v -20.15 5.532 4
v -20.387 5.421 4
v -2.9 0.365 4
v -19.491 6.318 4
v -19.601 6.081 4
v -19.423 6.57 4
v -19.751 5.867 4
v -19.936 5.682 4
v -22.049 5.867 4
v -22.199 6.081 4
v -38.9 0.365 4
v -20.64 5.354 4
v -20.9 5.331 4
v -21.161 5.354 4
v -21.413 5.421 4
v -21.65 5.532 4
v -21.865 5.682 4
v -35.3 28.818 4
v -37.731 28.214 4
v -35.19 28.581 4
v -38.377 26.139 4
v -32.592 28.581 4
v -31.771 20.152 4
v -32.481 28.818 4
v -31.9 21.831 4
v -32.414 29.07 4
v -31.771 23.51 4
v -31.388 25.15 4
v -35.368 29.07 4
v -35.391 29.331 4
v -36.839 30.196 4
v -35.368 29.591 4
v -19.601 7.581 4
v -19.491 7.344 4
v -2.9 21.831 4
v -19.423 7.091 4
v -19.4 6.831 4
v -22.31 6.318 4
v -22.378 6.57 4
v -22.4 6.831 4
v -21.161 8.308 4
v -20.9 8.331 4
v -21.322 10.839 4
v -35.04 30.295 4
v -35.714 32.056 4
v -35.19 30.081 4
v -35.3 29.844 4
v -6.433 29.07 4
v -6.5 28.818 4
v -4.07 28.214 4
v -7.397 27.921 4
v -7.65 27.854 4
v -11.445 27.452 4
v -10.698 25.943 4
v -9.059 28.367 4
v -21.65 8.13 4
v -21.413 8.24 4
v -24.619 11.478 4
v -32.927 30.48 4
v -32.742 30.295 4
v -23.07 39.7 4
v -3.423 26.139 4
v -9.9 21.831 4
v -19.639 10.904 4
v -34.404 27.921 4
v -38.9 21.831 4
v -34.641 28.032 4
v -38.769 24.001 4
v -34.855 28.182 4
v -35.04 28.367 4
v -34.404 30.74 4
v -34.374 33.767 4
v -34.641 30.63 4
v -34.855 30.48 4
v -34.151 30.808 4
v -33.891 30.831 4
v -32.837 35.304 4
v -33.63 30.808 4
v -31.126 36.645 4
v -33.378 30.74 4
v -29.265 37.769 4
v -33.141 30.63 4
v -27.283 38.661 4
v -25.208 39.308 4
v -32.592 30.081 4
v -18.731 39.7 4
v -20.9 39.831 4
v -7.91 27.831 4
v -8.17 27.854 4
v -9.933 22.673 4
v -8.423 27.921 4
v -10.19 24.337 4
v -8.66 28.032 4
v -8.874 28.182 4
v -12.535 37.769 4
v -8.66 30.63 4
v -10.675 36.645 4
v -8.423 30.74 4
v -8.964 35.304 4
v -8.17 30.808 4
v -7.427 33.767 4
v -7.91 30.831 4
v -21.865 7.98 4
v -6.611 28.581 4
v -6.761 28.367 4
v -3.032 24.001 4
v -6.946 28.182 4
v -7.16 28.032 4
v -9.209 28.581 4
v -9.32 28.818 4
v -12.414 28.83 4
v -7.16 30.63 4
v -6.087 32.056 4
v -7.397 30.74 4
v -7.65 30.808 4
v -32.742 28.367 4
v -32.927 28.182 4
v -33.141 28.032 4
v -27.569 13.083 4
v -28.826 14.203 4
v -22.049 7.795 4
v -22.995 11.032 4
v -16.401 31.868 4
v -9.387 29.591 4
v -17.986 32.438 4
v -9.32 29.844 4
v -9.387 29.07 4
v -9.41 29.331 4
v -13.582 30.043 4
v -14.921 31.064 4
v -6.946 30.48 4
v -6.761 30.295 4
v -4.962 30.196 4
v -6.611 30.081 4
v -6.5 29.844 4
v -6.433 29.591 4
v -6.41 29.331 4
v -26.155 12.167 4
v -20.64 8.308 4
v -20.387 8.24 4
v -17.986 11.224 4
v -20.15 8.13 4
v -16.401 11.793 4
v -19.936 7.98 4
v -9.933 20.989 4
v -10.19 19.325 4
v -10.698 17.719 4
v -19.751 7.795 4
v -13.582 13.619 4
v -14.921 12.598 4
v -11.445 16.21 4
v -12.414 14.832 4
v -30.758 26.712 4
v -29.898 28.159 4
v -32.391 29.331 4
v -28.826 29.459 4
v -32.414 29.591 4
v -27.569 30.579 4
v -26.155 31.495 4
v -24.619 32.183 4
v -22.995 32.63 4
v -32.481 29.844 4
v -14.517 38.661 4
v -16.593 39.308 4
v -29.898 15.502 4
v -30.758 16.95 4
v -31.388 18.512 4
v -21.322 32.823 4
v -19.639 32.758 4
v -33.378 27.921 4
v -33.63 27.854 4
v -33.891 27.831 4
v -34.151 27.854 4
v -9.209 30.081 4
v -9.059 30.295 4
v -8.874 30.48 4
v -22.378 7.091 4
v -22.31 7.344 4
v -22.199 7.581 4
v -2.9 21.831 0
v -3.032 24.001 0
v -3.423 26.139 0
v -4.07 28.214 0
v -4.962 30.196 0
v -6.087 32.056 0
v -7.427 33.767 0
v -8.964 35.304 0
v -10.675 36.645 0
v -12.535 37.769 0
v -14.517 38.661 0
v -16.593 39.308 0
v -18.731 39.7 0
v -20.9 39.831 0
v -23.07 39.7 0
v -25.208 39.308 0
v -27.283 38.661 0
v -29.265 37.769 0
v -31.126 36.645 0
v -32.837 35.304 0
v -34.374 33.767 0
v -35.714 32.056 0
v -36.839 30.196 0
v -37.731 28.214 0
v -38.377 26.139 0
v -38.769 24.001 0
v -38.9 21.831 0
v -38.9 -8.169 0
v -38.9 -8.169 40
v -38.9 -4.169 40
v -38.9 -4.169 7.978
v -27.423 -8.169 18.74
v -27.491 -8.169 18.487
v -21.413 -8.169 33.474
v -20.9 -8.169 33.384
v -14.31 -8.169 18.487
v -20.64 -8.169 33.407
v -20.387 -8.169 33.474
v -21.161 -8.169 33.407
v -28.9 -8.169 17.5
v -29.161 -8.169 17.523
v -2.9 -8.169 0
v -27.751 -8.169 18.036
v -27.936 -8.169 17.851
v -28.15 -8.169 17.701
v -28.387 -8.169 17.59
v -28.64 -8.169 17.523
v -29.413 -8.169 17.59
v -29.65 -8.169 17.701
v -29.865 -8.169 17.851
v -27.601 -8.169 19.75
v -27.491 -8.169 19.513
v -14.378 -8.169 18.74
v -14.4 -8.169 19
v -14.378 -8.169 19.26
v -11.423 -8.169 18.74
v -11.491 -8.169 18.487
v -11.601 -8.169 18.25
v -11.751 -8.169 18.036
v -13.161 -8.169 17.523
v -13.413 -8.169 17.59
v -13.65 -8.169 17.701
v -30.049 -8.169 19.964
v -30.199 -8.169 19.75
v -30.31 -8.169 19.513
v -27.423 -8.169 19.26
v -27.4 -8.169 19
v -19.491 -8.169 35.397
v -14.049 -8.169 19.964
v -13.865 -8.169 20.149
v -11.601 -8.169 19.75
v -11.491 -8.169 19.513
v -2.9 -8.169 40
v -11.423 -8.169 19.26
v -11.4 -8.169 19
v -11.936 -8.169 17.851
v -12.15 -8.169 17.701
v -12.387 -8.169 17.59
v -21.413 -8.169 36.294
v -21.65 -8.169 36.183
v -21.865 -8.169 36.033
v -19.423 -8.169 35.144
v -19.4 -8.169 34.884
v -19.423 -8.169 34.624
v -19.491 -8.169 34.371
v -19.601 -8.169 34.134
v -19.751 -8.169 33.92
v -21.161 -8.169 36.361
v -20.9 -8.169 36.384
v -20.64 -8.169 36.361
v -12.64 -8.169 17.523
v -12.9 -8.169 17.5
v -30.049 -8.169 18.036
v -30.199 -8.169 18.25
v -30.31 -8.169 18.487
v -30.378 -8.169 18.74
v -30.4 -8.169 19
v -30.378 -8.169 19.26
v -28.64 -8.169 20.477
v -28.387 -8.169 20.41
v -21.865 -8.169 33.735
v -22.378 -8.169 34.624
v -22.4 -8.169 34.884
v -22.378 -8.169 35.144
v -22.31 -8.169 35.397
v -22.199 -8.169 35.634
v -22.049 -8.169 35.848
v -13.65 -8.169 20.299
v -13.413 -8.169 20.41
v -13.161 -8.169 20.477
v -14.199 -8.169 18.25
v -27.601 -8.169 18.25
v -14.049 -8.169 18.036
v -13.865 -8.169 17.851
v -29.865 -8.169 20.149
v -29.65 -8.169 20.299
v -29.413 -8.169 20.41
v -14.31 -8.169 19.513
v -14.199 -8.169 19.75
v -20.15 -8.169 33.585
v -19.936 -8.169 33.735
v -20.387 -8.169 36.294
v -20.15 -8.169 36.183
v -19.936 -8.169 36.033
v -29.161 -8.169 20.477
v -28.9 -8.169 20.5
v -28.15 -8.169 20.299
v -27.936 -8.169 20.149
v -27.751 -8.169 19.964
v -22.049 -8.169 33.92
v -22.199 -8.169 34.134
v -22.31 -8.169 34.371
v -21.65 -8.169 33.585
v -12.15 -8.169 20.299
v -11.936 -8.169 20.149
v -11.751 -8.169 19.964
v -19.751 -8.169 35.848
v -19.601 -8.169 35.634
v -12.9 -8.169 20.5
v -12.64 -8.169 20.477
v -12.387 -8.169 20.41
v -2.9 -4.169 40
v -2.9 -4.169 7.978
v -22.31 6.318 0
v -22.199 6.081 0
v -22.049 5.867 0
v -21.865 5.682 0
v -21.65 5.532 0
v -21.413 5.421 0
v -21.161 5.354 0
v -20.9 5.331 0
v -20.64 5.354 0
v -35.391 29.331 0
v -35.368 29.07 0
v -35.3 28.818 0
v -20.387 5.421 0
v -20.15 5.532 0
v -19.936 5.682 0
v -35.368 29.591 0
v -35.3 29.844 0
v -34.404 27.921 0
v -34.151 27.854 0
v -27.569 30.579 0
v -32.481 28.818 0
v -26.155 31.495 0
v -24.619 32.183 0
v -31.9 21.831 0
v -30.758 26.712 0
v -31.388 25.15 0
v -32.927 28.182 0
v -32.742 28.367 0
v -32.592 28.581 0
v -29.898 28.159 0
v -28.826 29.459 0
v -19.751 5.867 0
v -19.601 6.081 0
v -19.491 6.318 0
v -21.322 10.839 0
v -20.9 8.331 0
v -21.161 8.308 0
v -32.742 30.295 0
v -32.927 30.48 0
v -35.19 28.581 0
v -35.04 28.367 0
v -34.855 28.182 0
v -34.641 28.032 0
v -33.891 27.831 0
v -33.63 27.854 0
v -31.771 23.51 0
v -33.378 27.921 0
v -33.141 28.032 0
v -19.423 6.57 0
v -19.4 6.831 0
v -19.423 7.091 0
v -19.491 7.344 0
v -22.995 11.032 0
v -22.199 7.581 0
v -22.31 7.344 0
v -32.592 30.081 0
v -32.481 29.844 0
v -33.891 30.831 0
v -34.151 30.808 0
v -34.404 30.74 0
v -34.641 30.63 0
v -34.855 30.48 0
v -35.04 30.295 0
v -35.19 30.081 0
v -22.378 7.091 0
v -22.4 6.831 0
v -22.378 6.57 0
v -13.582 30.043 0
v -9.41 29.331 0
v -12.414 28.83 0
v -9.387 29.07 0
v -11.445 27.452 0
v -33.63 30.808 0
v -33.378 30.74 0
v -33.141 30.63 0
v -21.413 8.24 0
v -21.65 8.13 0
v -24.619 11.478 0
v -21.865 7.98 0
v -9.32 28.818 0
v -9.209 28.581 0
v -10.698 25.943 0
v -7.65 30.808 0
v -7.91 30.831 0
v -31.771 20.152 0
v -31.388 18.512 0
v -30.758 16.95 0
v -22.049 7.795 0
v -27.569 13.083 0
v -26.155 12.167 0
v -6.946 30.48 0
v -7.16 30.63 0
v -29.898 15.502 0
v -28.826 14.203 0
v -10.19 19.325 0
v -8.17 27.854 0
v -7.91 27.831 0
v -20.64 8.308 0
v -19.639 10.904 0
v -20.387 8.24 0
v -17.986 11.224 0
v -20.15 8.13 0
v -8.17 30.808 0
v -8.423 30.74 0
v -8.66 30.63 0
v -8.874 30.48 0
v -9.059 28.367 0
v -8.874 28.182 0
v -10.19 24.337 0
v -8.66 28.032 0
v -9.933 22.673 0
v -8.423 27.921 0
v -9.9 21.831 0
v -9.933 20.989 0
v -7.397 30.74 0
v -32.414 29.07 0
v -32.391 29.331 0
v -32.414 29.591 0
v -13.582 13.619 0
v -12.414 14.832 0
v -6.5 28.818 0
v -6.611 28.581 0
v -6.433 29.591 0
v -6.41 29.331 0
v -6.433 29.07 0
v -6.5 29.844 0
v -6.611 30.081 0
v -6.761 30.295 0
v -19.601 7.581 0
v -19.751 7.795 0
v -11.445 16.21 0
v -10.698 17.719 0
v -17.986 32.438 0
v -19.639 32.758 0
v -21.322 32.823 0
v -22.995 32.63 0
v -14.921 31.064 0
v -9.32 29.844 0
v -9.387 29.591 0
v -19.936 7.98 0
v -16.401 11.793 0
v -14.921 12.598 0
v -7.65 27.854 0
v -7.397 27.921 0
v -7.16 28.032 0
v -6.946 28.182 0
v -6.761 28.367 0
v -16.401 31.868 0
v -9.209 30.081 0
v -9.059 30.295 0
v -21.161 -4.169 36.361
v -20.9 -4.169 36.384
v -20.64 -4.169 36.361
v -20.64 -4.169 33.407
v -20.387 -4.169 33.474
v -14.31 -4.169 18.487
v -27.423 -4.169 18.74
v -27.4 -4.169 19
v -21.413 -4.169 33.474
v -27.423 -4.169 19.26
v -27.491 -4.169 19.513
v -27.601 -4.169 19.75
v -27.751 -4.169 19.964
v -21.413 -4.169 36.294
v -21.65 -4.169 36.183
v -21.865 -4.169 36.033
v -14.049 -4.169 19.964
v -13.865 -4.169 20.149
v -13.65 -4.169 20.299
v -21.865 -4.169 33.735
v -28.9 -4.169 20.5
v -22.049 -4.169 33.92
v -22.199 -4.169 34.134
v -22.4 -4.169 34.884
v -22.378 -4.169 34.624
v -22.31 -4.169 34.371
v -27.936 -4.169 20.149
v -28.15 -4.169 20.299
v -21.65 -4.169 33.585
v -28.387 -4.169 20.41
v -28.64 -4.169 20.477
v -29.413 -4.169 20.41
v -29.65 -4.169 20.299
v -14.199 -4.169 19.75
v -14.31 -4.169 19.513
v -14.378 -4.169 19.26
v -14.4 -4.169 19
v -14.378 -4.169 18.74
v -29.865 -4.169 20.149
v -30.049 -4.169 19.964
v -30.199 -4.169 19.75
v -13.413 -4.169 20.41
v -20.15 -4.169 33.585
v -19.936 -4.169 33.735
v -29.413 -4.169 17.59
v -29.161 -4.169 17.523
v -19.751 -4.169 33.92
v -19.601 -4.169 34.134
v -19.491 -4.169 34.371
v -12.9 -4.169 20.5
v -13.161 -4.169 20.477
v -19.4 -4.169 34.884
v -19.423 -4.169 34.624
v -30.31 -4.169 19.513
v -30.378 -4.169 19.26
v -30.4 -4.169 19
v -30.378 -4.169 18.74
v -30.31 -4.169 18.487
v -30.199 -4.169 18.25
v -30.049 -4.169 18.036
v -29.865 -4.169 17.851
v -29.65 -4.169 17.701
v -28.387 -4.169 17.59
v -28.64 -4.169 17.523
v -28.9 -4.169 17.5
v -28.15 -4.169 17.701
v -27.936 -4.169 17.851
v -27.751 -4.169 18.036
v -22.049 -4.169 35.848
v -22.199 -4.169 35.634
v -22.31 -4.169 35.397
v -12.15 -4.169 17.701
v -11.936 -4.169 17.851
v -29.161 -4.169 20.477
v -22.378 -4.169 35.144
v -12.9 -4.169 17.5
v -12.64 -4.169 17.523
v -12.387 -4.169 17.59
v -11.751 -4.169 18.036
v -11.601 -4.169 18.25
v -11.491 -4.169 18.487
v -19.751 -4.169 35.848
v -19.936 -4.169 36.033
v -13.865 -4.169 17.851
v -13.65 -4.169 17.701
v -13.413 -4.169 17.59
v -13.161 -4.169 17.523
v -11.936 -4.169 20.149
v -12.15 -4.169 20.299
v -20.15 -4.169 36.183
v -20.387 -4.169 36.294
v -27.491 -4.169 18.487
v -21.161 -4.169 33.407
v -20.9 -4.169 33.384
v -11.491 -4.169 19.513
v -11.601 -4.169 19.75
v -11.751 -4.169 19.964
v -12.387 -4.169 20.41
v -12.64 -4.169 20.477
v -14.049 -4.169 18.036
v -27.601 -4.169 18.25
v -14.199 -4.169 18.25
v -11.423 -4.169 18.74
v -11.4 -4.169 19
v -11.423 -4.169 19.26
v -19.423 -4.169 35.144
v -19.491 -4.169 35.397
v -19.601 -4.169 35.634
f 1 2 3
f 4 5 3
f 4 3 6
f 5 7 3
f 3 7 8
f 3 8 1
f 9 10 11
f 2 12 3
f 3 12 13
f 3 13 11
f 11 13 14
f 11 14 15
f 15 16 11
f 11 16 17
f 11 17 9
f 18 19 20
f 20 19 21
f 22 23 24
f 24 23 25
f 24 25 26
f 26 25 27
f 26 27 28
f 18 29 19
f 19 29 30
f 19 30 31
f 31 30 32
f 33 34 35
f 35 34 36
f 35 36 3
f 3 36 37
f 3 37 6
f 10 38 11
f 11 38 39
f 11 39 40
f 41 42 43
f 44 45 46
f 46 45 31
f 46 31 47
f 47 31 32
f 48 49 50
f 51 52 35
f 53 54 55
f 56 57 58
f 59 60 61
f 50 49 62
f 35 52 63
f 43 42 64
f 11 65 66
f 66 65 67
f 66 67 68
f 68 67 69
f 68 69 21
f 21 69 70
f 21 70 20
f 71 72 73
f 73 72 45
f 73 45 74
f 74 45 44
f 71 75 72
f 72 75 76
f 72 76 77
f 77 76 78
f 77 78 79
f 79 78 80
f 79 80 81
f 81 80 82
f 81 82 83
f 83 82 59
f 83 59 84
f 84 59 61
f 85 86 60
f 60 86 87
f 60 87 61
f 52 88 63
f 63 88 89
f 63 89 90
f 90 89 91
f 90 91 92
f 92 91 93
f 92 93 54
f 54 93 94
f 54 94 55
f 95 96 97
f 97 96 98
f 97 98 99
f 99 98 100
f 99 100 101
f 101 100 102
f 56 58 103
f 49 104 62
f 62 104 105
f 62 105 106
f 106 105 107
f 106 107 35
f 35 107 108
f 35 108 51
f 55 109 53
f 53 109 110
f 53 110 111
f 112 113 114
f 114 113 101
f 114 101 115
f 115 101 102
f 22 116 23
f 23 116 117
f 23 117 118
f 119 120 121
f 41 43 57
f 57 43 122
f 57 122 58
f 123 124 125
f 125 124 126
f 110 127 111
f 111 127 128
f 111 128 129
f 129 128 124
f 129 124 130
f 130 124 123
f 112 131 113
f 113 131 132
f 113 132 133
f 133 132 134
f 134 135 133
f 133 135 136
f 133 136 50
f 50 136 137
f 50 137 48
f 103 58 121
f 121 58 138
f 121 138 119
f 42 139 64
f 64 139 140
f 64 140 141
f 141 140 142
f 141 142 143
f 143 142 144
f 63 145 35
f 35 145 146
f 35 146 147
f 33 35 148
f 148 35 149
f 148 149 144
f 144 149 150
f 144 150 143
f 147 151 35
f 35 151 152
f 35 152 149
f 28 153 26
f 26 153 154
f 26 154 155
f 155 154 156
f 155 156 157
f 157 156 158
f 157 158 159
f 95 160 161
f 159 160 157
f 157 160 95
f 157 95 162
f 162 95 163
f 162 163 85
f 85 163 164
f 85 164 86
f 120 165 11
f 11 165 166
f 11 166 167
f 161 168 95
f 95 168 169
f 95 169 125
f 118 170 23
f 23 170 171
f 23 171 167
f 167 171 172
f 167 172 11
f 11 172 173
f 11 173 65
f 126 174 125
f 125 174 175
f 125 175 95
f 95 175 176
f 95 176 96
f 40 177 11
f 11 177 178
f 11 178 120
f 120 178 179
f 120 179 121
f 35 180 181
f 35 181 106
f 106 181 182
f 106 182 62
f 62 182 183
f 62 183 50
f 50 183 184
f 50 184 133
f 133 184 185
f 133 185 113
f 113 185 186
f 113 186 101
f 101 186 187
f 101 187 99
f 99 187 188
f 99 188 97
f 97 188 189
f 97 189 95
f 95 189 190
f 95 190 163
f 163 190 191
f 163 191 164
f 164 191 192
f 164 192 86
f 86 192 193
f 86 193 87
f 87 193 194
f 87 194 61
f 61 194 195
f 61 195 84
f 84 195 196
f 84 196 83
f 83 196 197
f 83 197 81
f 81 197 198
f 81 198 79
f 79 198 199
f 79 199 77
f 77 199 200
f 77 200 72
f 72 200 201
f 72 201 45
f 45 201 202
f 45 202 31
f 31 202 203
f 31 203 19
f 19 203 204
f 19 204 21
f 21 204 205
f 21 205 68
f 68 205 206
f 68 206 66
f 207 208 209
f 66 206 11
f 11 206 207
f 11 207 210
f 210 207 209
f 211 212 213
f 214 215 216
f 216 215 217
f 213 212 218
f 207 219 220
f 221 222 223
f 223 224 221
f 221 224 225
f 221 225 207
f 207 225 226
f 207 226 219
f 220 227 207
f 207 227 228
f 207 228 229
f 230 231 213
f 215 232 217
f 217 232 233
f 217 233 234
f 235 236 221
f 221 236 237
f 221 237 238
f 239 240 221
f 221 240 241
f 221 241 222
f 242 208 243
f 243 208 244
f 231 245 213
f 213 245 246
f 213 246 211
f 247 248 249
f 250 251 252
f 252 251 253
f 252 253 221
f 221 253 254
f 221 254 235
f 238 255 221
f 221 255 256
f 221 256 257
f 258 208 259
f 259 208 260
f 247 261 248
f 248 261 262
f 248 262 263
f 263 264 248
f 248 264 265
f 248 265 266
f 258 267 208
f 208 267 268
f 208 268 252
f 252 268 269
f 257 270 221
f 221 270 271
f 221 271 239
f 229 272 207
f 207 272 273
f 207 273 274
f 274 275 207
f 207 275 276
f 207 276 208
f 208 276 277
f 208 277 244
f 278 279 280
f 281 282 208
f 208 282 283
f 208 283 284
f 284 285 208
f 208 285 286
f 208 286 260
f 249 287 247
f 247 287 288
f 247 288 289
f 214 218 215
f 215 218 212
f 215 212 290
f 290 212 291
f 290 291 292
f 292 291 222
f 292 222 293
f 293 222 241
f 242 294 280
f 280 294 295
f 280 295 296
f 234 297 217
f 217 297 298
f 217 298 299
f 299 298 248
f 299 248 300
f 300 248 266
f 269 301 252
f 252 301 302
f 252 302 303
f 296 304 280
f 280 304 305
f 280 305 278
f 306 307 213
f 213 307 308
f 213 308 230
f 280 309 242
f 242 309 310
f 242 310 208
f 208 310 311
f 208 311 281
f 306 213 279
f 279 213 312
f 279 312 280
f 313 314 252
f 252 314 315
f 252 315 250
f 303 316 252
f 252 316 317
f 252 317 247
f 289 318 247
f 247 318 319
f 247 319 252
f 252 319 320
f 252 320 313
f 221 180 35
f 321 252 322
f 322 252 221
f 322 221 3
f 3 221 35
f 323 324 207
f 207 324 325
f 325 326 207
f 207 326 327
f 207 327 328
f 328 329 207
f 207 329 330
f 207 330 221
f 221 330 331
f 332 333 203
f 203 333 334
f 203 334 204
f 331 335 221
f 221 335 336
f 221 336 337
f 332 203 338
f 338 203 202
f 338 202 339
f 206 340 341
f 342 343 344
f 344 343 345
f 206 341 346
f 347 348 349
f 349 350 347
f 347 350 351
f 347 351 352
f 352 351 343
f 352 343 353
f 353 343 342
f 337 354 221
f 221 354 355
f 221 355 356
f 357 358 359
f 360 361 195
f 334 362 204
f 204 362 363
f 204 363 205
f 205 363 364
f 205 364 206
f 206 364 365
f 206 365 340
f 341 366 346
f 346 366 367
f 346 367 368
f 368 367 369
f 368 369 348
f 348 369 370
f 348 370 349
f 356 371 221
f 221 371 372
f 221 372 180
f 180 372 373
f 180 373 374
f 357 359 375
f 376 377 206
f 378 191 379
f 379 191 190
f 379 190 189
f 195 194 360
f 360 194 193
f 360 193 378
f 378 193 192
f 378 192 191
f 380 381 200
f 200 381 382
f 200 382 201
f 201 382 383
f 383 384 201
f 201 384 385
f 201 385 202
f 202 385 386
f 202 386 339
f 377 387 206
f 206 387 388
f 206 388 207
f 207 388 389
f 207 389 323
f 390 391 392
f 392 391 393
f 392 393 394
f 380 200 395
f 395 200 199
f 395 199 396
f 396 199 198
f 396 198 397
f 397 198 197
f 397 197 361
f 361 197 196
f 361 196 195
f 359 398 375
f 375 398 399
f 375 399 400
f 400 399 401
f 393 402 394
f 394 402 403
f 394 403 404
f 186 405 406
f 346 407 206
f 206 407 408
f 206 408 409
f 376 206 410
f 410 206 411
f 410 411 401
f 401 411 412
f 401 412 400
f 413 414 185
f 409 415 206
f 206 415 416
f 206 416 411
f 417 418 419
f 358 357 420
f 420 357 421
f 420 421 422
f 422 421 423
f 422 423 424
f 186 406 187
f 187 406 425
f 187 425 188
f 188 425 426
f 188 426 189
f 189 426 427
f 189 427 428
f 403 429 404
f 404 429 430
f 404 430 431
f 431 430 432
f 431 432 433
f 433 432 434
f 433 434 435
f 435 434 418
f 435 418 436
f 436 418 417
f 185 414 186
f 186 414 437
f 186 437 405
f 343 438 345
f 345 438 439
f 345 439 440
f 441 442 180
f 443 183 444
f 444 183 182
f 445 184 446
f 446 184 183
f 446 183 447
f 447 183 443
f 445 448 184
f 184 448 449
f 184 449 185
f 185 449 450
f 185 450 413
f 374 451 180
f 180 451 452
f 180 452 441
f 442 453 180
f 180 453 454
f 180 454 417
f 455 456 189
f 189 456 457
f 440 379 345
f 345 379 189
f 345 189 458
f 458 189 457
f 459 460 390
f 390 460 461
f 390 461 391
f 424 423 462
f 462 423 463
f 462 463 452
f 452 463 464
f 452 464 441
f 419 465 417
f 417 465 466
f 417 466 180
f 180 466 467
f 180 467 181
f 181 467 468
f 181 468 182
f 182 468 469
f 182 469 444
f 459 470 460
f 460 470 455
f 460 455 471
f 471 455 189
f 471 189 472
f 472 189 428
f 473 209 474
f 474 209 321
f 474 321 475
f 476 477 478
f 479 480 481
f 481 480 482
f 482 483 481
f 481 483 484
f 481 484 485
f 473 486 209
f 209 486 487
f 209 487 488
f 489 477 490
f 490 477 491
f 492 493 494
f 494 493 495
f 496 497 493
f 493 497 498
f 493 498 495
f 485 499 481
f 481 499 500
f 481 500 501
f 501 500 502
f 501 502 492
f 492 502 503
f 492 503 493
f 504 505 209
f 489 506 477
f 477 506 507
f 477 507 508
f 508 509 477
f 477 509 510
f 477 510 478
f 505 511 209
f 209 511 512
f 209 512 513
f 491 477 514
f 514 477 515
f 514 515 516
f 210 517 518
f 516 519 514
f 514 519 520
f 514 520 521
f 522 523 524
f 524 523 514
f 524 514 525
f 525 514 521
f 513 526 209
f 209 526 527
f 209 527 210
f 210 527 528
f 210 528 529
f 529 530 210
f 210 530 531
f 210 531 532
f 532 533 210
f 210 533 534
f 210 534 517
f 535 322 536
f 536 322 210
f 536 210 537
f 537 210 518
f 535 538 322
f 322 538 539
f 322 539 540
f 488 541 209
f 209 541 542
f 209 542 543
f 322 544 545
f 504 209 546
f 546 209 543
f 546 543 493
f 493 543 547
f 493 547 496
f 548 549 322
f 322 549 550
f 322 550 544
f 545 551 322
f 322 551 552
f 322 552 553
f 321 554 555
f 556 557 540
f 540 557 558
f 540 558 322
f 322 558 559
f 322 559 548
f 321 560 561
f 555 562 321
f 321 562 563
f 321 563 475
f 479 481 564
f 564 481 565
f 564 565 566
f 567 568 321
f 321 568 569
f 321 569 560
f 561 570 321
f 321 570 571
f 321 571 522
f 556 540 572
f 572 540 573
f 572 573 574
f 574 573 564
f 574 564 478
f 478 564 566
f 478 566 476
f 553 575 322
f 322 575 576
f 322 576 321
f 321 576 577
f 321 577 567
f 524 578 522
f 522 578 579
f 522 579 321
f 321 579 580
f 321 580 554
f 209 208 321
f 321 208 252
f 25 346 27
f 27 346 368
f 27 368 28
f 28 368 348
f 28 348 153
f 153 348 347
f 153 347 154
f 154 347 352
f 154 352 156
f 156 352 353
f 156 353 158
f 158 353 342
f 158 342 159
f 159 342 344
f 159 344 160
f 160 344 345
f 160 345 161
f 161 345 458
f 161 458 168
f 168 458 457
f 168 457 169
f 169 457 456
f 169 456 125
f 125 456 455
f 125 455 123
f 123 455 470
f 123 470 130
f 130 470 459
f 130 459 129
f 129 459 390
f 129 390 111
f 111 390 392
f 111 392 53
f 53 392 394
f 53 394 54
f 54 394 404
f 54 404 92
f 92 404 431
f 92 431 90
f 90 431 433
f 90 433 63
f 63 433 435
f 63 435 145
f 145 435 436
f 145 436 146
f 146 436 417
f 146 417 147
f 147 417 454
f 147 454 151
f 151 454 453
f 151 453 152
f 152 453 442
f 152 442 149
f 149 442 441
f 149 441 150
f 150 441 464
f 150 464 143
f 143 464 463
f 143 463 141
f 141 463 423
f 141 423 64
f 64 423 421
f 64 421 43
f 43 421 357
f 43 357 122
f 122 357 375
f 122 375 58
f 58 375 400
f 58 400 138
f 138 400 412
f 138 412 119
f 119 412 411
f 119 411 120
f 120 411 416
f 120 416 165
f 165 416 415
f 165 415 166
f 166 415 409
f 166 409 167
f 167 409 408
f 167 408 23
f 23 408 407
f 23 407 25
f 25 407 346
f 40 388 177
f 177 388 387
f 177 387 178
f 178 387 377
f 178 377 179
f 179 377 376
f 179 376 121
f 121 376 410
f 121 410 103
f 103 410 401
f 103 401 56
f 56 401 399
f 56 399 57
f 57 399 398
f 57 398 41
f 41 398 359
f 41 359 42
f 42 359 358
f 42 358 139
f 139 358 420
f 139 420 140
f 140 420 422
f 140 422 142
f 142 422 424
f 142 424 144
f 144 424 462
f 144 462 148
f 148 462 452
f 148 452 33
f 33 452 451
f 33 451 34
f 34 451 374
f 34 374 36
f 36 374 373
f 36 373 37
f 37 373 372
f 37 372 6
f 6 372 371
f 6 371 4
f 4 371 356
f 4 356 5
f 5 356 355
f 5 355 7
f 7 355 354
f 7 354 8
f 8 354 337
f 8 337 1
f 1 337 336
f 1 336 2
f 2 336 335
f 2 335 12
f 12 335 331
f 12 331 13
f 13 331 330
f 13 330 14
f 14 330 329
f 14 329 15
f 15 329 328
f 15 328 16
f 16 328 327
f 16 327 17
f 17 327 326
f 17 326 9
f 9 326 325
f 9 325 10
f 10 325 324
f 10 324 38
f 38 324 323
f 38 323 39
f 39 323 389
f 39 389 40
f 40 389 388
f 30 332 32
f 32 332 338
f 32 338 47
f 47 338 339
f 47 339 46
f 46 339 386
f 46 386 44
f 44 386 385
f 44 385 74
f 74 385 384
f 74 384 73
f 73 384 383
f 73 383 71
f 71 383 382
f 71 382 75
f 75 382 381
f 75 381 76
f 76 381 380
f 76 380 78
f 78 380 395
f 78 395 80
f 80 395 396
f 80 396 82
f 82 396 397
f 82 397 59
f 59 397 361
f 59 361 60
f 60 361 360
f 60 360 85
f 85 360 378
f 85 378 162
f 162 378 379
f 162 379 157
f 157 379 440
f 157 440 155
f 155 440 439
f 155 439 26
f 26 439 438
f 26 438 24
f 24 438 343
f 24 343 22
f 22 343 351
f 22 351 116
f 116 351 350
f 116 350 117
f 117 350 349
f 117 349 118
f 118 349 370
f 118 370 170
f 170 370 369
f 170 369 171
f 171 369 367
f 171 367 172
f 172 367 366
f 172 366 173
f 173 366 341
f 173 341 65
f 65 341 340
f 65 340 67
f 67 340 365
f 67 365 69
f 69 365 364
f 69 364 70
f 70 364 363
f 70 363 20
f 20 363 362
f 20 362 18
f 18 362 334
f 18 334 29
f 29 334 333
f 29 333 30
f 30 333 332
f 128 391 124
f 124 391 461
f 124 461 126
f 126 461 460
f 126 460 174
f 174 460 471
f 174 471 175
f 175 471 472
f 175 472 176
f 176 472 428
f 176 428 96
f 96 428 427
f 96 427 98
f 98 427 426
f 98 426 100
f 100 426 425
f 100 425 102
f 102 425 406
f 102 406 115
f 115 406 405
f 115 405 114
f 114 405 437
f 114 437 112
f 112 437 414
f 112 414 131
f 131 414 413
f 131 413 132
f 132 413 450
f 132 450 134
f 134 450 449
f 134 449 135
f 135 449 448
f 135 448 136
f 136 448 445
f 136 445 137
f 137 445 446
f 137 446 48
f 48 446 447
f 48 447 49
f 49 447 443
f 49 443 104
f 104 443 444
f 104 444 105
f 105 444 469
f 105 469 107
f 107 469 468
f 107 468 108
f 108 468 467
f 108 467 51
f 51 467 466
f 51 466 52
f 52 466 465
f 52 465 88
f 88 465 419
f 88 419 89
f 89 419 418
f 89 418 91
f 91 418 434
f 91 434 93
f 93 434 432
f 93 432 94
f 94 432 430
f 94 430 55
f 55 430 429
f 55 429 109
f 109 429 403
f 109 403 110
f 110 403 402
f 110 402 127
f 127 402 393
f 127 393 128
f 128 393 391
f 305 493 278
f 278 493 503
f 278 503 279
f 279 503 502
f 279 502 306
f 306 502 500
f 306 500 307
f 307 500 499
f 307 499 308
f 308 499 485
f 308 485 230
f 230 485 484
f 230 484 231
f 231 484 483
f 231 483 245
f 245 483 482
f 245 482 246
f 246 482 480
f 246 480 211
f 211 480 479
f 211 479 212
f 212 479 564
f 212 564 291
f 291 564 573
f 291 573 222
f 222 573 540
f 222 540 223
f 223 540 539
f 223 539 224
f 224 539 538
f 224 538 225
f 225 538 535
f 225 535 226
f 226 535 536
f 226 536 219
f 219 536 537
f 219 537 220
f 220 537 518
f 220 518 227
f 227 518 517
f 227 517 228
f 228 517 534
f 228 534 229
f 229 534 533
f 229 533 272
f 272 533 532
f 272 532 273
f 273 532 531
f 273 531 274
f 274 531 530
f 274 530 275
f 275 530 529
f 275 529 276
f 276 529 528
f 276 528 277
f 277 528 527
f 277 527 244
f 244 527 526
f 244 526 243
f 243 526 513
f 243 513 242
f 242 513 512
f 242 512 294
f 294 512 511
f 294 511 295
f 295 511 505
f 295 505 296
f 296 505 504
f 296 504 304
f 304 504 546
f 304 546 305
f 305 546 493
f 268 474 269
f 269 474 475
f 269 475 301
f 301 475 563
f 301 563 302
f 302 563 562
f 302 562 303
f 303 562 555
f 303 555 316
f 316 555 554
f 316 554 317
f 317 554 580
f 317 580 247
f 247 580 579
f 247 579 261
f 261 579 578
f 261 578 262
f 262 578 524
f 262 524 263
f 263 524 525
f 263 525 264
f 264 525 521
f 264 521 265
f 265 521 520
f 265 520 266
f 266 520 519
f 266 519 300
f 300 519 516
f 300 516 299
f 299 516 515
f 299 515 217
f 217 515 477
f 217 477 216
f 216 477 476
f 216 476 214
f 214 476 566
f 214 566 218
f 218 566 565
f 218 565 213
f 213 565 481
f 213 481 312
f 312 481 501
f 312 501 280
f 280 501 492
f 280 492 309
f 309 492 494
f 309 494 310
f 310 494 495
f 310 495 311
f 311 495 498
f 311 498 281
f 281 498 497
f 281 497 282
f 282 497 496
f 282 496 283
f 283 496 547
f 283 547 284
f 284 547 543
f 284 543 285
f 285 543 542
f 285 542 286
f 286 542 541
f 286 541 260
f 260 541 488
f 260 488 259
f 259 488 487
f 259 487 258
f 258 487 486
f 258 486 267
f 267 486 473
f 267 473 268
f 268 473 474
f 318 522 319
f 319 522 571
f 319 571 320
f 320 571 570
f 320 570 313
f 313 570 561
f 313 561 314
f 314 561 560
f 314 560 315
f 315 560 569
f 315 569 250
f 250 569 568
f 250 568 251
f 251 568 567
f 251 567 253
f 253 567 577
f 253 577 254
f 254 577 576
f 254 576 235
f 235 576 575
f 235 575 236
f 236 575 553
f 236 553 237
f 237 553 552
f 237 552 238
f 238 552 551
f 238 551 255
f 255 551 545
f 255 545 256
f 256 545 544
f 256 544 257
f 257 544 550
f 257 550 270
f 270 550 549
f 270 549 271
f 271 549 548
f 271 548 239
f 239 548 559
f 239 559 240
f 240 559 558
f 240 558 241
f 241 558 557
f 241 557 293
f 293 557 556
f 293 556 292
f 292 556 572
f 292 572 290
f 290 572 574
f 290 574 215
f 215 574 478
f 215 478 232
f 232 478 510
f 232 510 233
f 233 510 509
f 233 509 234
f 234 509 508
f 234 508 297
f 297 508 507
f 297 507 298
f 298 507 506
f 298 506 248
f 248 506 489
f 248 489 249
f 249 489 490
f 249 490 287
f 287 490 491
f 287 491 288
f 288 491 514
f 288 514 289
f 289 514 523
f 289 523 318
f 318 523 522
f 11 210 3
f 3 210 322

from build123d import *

# Parameters (mm, degrees)
BOSS_EXTRUDE1_DEPTH = 4
SKETCH3_W           = 36
SKETCH3_H           = 4
BOSS_EXTRUDE2_DEPTH = 40
SKETCH4_R           = 11
SKETCH4_R_2         = 1.5
CUT_EXTRUDE1_DEPTH  = 22
SKETCH5_R           = 1.5
CUT_EXTRUDE2_DEPTH  = 10
BOSS_EXTRUDE4_DEPTH = 36


with BuildPart() as part:
    # Sketch1 → Boss-Extrude1 (new body)
    with BuildSketch(Plane.XY):
        with BuildLine():
            Line((-38.900365485, 21.830923248), (-38.900365485, -8.169076752))
            Line((-38.900365485, -8.169076752), (-2.900365485, -8.169076752))
            Line((-2.900365485, -8.169076752), (-2.900365485, 21.830923248))
            ThreePointArc((-2.900365485, 21.830923248), (-20.900365485, 39.830923248), (-38.900365485, 21.830923248))
        make_face()
    extrude(amount=BOSS_EXTRUDE1_DEPTH)

    # Sketch3 → Boss-Extrude2 (add)
    with BuildSketch(Plane.XY):
        with Locations((-20.900365485, -6.169076752)):
            Rectangle(SKETCH3_W, SKETCH3_H)
    extrude(amount=BOSS_EXTRUDE2_DEPTH)

    # Sketch4 → Cut-Extrude1 (cut)
    with BuildSketch(Plane.XY):
        with Locations(Location((-20.900365485, 21.830923248, 0), (0, 0, 180))):
            Circle(SKETCH4_R)
        with Locations(Location((-20.900365485, 6.830923248, 0), (0, 0, 180))):
            Circle(SKETCH4_R_2)
        with Locations(Location((-33.890746542, 29.330923248, 0), (0, 0, 180))):
            Circle(SKETCH4_R_2)
        with Locations(Location((-7.909984429, 29.330923248, 0), (0, 0, 180))):
            Circle(SKETCH4_R_2)
    extrude(amount=CUT_EXTRUDE1_DEPTH, mode=Mode.SUBTRACT)

    # Sketch5 → Cut-Extrude2 (cut)
    with BuildSketch(Plane(origin=(0, 0, 0), x_dir=(1, 0, 0), z_dir=(0, 1, 0))):
        with Locations(Location((-28.900365485, -19, 0), (0, 0, 270))):
            Circle(SKETCH5_R)
        with Locations(Location((-12.900365485, -19, 0), (0, 0, 270))):
            Circle(SKETCH5_R)
        with Locations(Location((-20.900365485, -34.884, 0), (0, 0, 270))):
            Circle(SKETCH5_R)
    extrude(amount=-CUT_EXTRUDE2_DEPTH, mode=Mode.SUBTRACT)

    # Sketch7 → Boss-Extrude4 (add)
    with BuildSketch(Plane(origin=(-2.900365485, 0, 0), x_dir=(0, 0, -1), z_dir=(1, 0, 0))):
        Polygon((-4, 0.364546523), (-7.977975303, -4.169076752), (-4, -4.169076752), align=None)
    extrude(amount=-BOSS_EXTRUDE4_DEPTH)


solid = part.part
